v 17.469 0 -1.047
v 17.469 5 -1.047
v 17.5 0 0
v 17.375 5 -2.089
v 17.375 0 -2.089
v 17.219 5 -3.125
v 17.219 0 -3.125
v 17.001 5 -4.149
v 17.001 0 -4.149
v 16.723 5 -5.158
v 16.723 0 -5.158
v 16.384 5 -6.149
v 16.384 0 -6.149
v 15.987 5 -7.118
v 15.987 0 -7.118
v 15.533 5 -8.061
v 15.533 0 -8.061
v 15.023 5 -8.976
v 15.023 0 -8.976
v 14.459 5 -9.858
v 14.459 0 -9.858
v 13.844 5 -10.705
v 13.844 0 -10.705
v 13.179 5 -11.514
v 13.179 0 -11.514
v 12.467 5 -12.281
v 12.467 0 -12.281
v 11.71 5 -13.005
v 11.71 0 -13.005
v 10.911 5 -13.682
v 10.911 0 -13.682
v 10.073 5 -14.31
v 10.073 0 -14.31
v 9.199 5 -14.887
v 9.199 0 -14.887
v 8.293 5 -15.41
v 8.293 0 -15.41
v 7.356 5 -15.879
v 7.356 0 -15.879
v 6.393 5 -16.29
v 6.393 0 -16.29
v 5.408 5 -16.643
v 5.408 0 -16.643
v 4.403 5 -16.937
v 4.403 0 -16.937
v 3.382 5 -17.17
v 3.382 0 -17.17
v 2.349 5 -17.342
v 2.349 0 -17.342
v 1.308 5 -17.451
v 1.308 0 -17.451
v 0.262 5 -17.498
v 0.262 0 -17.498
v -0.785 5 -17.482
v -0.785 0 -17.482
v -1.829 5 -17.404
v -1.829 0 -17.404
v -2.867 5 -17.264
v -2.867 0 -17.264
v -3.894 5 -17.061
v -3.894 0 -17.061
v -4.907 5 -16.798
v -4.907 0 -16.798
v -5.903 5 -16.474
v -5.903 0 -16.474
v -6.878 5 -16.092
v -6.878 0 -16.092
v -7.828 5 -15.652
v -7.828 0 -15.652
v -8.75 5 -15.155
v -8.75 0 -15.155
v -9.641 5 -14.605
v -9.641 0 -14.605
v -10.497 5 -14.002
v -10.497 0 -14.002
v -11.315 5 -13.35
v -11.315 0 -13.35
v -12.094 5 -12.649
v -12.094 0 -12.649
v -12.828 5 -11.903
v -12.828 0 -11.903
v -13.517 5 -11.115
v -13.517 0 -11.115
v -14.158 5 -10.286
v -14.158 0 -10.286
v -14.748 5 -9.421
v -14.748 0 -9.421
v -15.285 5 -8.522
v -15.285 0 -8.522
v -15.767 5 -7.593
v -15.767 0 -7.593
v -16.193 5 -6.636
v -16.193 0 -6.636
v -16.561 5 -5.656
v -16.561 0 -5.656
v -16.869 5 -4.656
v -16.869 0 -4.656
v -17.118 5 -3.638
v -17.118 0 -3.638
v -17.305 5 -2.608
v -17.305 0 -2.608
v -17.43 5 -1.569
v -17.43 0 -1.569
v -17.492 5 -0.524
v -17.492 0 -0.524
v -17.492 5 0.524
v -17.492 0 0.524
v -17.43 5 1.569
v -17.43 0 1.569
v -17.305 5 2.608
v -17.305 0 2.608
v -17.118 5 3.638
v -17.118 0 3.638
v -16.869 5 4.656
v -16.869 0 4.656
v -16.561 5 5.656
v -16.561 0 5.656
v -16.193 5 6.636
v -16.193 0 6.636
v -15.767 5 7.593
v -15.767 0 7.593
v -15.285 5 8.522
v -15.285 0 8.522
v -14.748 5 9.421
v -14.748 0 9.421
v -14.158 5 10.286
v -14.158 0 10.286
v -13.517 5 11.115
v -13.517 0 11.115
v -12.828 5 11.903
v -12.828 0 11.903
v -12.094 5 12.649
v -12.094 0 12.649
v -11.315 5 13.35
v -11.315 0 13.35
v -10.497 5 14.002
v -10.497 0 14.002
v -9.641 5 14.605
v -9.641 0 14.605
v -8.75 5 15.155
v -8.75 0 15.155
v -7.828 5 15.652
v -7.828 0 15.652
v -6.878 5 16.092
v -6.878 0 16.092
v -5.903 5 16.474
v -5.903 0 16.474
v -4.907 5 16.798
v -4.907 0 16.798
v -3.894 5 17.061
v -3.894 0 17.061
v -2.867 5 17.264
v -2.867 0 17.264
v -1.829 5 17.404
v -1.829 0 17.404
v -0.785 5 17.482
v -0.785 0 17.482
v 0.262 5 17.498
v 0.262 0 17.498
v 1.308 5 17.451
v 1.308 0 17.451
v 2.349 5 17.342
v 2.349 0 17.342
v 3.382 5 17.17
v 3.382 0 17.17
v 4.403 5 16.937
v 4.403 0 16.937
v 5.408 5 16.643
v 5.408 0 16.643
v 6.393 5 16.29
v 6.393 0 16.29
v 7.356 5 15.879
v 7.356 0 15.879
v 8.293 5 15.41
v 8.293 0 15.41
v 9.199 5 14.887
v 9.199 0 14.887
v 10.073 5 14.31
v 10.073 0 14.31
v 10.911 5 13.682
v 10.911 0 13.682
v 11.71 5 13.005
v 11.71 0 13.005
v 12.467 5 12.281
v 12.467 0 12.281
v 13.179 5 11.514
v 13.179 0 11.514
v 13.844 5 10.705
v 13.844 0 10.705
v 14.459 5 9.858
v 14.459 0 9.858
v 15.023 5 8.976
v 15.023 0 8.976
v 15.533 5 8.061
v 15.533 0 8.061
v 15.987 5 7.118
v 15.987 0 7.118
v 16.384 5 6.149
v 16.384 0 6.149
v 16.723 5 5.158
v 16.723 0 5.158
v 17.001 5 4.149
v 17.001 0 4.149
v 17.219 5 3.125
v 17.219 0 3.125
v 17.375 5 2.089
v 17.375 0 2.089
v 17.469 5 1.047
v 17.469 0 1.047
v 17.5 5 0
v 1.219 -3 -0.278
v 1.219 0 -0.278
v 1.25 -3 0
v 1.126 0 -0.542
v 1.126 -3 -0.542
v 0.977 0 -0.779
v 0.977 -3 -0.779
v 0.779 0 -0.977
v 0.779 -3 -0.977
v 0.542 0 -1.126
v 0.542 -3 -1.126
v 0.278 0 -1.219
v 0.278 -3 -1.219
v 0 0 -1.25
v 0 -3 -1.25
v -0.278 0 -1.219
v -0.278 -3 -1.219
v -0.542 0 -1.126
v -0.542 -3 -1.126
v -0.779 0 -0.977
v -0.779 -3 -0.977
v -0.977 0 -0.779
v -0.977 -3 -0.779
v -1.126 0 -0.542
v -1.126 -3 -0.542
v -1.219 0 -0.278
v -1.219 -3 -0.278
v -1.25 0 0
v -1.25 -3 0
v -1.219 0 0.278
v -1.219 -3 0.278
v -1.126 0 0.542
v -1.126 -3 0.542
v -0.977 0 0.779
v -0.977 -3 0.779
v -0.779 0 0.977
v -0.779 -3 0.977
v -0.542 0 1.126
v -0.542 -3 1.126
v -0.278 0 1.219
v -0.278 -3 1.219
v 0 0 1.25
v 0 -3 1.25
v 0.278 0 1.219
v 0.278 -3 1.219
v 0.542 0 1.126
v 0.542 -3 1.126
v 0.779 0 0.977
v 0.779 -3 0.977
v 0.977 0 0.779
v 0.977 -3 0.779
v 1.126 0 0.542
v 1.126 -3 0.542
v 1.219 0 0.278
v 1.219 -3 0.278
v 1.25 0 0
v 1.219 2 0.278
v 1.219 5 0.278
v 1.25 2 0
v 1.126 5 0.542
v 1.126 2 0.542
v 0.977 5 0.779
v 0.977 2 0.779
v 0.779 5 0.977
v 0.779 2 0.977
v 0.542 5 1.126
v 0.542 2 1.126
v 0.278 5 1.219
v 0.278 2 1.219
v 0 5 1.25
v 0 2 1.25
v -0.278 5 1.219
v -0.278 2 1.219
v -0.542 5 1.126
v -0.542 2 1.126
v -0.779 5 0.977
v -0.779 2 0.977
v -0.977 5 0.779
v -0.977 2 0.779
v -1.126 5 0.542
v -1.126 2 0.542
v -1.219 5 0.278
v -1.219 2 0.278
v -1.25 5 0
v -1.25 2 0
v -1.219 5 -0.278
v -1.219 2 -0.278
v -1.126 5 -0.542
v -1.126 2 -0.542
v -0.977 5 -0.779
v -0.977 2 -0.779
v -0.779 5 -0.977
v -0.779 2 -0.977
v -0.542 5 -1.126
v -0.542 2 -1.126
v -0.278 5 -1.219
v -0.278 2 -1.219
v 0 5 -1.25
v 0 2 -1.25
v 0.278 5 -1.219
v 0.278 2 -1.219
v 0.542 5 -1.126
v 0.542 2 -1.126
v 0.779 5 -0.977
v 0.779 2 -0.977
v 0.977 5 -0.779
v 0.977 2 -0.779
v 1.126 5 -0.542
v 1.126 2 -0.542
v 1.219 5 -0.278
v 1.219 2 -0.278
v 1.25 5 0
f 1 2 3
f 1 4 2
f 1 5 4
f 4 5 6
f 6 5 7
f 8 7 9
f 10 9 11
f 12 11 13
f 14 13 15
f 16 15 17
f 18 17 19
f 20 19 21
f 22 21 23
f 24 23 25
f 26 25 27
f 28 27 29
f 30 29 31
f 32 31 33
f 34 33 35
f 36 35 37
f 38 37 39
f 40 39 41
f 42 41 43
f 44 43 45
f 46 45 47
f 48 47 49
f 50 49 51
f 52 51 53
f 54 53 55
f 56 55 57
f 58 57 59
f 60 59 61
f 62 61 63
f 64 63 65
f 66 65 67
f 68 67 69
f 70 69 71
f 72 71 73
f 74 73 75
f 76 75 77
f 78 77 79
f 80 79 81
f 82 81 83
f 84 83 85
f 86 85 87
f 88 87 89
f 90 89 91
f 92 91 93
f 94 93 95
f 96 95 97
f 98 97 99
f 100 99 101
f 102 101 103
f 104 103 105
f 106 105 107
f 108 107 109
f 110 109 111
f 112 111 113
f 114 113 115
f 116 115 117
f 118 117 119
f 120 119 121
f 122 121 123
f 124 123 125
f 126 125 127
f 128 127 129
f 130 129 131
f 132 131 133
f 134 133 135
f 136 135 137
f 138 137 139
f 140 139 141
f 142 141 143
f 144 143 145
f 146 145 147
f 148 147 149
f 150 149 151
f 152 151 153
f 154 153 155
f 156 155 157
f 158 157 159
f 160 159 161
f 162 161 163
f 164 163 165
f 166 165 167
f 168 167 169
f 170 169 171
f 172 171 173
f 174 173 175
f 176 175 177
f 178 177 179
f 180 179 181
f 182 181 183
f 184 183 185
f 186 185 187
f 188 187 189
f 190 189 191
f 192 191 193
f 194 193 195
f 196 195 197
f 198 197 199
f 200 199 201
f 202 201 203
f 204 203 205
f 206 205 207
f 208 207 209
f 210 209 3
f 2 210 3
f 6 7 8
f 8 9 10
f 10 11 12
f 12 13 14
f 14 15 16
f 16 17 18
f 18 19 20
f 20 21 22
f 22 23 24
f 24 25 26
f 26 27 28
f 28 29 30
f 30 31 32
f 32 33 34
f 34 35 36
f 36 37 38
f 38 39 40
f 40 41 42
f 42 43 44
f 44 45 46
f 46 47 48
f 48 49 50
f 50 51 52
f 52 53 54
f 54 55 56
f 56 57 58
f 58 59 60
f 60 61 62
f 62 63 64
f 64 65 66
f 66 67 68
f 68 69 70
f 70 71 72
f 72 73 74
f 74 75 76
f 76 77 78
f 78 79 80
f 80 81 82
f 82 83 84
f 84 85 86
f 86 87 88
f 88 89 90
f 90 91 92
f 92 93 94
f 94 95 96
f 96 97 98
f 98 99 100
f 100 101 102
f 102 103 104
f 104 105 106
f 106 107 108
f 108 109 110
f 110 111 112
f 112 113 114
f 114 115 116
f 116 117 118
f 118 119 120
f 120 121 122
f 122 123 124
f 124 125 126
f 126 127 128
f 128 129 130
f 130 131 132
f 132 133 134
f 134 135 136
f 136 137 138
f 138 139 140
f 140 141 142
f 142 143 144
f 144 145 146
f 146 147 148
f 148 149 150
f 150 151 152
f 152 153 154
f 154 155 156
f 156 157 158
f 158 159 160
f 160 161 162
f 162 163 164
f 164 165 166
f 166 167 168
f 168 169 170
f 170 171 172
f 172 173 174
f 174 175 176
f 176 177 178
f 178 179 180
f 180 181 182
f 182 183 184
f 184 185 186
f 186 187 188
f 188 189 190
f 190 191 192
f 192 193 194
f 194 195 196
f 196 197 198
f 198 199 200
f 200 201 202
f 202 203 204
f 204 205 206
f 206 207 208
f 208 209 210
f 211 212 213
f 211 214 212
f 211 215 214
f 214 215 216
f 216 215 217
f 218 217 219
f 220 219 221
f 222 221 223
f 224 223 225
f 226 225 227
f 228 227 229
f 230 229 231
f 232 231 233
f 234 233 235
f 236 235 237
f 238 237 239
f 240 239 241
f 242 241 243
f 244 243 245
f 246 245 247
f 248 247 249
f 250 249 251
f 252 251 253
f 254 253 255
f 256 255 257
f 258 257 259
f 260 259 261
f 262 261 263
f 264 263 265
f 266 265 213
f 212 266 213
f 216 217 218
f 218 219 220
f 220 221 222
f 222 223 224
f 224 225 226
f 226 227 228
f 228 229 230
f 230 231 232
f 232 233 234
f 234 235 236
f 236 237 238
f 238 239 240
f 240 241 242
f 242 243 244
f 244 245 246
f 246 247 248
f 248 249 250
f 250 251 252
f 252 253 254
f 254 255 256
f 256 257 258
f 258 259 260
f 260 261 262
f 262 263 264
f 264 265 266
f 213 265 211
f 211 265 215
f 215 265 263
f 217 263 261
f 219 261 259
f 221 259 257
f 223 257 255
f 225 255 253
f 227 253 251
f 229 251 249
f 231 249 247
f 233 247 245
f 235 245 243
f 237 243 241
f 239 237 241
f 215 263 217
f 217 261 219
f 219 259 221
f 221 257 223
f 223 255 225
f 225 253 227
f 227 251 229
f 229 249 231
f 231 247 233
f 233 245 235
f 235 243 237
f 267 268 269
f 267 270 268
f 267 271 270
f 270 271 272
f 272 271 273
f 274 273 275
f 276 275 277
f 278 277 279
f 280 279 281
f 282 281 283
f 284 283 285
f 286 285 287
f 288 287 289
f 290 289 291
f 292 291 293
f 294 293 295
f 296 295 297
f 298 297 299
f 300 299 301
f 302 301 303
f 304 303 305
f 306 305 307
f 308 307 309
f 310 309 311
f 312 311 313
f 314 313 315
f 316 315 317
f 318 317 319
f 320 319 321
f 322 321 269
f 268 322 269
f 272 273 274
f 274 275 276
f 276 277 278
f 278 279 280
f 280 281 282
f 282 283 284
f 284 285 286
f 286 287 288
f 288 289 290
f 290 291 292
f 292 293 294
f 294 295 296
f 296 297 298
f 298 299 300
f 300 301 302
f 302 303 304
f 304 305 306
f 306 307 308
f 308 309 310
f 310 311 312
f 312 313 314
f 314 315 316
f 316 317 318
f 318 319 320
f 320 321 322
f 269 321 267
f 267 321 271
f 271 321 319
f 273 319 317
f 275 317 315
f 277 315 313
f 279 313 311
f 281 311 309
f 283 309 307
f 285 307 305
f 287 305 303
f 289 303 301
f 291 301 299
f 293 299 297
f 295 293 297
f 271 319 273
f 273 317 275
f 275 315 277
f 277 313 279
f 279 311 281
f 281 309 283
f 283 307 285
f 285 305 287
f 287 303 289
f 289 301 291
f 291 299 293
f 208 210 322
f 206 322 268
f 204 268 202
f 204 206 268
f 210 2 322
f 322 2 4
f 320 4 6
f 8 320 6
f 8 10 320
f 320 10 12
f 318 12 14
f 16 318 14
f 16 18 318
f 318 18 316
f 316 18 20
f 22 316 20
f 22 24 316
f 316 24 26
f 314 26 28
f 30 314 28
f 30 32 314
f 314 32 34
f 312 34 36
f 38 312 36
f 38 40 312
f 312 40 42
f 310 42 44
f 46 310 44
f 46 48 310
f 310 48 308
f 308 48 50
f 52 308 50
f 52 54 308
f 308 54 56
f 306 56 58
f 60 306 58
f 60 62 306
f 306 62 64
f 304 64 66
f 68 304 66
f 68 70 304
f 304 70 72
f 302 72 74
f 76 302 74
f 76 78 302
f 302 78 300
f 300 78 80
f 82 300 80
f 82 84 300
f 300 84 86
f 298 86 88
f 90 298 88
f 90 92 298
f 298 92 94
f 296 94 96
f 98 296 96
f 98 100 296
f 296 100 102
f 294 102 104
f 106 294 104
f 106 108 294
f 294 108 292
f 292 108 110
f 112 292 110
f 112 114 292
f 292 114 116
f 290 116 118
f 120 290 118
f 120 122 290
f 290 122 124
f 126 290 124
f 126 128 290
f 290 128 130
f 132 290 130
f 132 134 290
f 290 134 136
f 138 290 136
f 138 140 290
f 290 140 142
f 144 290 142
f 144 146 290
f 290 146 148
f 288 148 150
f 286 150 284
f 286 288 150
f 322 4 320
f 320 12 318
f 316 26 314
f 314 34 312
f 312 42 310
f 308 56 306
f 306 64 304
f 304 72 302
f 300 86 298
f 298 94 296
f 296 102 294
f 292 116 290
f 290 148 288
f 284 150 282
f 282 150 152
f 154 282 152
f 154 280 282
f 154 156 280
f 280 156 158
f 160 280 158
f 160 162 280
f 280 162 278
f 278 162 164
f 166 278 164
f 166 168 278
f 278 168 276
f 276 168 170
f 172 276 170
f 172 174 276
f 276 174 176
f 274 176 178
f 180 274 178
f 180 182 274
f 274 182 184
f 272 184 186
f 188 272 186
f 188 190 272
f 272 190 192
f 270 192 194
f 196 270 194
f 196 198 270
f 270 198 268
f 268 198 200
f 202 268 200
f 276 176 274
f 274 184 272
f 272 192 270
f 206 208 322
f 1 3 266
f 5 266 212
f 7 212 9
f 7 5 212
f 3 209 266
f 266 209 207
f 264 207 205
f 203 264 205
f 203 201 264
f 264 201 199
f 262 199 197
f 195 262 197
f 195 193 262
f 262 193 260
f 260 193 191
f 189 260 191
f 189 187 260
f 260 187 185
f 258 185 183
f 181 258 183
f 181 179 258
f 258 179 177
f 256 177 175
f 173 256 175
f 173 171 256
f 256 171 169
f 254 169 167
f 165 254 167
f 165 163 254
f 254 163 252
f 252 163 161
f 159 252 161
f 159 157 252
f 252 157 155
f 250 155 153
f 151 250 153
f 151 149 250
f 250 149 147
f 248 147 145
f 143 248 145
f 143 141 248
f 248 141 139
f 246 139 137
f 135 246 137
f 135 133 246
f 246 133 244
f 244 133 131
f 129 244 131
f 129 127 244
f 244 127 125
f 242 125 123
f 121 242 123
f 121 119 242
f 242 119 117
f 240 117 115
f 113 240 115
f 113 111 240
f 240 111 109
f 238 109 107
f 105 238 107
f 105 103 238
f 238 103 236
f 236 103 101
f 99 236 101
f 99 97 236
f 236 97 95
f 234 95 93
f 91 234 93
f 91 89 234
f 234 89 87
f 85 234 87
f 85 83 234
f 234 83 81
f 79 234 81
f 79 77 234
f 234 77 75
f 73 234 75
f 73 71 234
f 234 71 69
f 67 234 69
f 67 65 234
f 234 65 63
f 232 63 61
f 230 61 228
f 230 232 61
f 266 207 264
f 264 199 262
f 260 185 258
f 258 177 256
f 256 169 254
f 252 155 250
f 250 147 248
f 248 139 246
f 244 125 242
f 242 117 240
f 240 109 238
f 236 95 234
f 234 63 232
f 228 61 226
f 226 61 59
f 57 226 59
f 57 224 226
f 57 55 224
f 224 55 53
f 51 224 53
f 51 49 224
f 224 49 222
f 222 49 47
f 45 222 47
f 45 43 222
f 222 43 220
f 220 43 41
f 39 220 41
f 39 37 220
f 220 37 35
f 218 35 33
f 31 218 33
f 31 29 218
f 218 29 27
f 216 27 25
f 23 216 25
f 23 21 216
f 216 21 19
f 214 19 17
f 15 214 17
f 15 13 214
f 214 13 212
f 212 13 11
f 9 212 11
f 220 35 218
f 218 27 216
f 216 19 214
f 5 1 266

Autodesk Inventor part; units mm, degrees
ref_plane "YZ Plane" through (0, 0, 0) normal (1, 0, 0) x (0, 1, 0)
ref_plane "XZ Plane" through (0, 0, 0) normal (0, 1, 0) x (-1, 0, 0)
ref_plane "XY Plane" through (0, 0, 0) normal (0, 0, 1) x (1, 0, 0)
sketch "スケッチ1" plane through (0, 0, 0) normal (0, 1, 0) x (-1, 0, 0)
  circle A0 centre (0, 0) radius 12.5
  dimension "d0" = 25
extrude "押し出し1" add sketch "スケッチ1" along normal blind 5
sketch "スケッチ2" plane through (0, 5, 0) normal (0, 1, 0) x (1, 0, 0)
  circle A0 centre (0, 0) radius 12.5 projected
  circle A1 centre (0, 0) radius 1.25
  dimension "d3" = 2.5
extrude "押し出し2" cut sketch "スケッチ2" against normal blind 3 contours A1
sketch "スケッチ3" plane through (0, 0, 0) normal (0, -1, 0) x (1, 0, 0)
  circle A0 centre (0, 0) radius 12.5 projected
  circle A1 centre (0, 0) radius 1.25
  dimension "d6" = 2.5
extrude "押し出し3" add sketch "スケッチ3" along normal blind 3 contours A1
sketch "スケッチ4" plane through (0, 5, 0) normal (0, 1, 0) x (1, 0, 0)
  circle A0 centre (0, 0) radius 12.5 projected
  circle A1 centre (0, 0) radius 17.5
  dimension "d9" = 35
extrude "押し出し4" add sketch "スケッチ4" against normal blind 5
properties part number "知能ロボコンシリンダ延長35mm"
